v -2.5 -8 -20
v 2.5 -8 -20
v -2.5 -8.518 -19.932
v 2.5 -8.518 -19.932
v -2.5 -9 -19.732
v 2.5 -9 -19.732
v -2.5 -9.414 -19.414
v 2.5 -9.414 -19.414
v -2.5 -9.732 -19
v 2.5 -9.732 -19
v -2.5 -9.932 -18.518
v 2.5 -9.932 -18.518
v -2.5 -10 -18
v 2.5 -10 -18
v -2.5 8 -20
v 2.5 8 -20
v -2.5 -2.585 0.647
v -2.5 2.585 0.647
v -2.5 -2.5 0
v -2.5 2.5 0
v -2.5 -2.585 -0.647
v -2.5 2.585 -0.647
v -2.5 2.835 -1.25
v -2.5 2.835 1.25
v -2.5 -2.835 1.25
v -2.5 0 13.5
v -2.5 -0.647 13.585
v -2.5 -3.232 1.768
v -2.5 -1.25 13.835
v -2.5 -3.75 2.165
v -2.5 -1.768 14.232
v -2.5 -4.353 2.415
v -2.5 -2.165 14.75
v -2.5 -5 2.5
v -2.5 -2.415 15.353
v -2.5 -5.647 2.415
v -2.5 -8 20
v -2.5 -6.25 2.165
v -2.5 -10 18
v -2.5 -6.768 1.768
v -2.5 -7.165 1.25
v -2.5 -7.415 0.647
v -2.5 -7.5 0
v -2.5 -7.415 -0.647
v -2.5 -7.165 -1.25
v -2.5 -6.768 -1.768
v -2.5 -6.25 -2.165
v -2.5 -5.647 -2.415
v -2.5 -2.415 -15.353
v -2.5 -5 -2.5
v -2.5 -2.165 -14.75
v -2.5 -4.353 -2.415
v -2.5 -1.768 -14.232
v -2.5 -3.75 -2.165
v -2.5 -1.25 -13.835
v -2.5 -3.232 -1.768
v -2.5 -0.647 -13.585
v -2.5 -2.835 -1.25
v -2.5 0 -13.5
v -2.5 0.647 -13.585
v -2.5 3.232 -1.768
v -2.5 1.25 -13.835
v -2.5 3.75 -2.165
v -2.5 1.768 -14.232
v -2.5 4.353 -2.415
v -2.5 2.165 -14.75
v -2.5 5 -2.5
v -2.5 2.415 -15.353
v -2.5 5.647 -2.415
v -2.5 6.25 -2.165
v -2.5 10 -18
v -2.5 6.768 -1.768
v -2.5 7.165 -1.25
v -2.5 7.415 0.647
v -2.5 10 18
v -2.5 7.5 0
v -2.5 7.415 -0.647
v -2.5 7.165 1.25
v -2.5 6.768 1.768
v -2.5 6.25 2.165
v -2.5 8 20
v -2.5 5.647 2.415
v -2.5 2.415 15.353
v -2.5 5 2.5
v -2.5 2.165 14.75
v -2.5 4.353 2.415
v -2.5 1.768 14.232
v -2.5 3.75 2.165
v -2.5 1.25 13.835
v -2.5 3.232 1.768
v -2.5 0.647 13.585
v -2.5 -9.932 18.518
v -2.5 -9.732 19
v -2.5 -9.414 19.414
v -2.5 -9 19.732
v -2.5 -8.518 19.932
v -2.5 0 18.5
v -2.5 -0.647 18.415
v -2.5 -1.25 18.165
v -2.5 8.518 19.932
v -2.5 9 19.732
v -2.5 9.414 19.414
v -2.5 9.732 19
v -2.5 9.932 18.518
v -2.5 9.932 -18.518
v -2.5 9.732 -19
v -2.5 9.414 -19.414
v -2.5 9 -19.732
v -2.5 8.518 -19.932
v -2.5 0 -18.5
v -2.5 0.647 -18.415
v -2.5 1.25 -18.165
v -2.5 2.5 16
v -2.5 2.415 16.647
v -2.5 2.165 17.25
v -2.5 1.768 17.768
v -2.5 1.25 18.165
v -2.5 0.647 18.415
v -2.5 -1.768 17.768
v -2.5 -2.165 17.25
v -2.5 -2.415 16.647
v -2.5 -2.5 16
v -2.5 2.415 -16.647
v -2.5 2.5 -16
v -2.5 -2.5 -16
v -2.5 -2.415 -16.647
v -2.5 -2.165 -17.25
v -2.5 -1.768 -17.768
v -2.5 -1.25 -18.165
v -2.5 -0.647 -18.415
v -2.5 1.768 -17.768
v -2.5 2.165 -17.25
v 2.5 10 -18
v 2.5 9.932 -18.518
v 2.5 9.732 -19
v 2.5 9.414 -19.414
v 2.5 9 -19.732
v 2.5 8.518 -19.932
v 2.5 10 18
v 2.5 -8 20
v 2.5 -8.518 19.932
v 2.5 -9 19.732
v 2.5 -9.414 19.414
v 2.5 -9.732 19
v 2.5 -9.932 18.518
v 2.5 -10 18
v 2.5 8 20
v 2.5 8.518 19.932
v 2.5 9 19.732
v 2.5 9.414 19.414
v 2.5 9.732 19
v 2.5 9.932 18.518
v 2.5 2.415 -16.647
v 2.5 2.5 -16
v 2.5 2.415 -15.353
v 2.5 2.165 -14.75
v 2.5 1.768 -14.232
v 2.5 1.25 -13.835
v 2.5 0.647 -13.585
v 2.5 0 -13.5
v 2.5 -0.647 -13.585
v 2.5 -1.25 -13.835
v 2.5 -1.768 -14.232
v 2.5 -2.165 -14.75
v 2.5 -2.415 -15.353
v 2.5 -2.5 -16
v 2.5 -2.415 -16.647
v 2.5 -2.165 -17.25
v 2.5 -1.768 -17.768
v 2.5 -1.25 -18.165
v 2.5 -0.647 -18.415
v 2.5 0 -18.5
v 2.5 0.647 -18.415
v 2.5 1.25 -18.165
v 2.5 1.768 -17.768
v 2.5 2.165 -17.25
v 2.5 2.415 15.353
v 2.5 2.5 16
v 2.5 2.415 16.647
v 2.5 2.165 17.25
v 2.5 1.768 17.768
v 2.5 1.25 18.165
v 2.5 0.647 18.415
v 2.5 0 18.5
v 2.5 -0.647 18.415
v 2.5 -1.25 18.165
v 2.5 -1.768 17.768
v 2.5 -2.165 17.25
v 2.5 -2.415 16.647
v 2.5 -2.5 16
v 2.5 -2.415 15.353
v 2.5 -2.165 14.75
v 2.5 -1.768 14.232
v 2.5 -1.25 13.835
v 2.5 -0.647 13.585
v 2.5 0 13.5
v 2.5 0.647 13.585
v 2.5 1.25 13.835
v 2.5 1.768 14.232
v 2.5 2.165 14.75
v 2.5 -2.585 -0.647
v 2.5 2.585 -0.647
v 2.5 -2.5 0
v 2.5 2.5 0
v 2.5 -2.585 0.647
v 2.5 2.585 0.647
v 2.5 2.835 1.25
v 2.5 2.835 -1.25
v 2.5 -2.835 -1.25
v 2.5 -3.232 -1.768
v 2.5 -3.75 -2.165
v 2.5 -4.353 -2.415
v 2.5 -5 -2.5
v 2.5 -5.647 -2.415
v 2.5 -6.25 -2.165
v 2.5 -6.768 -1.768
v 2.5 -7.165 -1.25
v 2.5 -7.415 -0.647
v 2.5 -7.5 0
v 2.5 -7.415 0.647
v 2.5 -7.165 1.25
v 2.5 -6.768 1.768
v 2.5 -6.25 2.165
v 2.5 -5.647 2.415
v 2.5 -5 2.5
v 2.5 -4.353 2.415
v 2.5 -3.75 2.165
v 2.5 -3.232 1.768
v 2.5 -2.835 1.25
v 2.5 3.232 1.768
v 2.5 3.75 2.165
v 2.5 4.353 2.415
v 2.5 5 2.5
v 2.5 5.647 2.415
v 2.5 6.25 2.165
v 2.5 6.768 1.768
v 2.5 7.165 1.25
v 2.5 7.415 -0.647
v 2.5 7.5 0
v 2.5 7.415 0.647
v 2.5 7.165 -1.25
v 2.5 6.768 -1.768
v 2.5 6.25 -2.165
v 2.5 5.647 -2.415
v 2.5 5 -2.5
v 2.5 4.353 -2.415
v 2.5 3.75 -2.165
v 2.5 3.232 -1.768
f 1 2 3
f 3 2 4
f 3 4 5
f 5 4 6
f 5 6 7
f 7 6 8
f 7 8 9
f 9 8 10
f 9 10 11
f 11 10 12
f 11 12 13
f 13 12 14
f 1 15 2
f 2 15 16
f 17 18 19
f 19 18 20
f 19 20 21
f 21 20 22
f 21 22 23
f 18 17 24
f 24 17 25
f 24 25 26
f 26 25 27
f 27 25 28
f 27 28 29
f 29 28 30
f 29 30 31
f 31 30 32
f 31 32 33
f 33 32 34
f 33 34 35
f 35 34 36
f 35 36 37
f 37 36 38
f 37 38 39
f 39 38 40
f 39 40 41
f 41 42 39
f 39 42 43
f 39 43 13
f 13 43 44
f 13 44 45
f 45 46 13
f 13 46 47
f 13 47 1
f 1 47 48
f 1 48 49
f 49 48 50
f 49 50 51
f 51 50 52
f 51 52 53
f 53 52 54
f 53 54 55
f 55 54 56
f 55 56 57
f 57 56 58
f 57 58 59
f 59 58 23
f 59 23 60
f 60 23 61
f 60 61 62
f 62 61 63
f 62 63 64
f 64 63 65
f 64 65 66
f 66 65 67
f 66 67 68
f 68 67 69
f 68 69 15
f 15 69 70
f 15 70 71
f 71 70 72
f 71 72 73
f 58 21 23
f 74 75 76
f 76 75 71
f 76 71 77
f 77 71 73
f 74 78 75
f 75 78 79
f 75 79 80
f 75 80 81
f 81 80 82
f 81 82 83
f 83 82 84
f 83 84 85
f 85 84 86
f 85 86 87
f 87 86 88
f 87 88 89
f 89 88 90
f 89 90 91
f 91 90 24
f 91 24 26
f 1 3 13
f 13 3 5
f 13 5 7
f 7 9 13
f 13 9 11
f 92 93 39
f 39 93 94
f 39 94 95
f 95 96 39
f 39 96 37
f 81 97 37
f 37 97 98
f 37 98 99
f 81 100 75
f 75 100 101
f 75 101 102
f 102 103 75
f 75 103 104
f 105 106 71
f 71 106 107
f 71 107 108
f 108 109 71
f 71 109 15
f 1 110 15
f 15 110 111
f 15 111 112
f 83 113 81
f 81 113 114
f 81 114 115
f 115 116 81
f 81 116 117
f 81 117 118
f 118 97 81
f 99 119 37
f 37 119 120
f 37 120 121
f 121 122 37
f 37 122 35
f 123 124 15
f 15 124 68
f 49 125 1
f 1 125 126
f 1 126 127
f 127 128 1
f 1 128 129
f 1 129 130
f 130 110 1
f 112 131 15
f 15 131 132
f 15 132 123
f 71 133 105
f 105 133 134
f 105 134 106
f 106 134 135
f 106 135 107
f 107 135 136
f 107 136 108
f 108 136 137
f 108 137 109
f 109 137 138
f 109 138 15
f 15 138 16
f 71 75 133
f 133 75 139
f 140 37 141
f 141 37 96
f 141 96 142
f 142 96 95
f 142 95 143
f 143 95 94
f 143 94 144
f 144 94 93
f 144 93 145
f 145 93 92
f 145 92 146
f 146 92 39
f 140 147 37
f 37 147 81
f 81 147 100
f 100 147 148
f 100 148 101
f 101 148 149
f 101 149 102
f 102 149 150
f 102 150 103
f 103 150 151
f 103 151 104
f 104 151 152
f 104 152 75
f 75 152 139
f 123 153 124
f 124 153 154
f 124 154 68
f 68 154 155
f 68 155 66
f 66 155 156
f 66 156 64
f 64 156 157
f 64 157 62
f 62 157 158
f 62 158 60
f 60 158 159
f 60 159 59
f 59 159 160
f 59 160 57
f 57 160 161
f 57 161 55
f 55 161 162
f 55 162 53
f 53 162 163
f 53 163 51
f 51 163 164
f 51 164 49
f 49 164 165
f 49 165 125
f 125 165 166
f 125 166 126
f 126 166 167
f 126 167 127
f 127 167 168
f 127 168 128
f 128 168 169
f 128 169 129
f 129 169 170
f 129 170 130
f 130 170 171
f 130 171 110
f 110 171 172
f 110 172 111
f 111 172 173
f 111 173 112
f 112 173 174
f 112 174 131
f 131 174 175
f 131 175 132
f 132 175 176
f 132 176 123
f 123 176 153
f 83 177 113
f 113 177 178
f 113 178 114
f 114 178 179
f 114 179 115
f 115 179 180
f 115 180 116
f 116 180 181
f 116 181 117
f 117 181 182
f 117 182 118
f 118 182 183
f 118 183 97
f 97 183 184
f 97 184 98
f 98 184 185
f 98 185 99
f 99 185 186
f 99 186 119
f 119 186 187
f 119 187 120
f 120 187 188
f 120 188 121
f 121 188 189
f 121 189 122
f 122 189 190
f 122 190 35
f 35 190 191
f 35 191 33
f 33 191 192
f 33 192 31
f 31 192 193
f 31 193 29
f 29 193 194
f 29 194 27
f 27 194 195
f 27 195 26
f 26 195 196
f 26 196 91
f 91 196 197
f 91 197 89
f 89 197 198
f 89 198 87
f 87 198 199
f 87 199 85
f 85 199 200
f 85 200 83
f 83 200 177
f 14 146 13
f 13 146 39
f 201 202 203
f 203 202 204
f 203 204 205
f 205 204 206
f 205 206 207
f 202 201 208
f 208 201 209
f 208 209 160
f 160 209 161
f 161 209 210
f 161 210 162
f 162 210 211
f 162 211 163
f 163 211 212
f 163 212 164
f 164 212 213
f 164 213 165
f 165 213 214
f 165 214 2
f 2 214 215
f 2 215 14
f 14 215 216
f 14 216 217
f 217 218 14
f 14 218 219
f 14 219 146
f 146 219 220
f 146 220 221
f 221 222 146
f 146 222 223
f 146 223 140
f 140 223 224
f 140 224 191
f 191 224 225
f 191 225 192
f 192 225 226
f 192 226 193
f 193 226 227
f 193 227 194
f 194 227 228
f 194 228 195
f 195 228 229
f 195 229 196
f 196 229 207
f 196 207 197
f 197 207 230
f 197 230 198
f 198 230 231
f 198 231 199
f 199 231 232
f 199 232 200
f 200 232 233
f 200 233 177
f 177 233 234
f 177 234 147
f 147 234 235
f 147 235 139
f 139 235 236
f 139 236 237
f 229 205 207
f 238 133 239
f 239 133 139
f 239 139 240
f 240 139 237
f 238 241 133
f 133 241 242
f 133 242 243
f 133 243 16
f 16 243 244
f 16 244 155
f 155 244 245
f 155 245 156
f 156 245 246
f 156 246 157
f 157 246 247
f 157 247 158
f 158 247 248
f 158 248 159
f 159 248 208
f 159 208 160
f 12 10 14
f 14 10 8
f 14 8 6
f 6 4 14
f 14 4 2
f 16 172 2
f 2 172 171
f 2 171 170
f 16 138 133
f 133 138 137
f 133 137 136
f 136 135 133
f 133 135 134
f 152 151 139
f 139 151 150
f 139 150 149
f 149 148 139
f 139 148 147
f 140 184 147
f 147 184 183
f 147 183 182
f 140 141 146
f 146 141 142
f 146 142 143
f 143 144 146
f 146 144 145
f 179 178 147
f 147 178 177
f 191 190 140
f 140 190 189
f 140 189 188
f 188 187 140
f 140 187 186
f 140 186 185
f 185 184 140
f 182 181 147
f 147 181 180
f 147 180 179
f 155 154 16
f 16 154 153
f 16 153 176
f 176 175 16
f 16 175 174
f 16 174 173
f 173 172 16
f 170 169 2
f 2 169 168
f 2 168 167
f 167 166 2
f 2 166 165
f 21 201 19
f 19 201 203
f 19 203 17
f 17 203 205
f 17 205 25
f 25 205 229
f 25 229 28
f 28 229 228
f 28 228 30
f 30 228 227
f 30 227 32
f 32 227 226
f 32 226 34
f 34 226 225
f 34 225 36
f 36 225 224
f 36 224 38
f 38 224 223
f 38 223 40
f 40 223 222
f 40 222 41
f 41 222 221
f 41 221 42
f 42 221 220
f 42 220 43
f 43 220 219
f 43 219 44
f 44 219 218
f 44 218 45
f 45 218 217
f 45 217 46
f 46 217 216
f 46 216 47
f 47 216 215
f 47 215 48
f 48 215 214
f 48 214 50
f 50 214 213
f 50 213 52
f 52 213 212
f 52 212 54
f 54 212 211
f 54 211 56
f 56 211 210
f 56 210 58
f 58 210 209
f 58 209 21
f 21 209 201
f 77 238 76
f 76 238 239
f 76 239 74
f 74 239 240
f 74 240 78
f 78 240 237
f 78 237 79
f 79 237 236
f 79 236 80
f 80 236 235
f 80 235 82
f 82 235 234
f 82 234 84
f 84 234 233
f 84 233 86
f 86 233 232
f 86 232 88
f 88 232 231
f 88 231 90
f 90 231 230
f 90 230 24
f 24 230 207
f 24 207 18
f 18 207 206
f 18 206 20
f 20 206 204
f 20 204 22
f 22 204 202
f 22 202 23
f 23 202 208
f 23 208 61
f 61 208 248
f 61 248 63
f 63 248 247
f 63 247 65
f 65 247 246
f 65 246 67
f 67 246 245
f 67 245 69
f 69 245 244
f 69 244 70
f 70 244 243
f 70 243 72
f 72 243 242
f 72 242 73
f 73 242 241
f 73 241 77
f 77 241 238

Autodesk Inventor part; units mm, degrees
ref_plane "YZ Plane" through (0, 0, 0) normal (1, 0, 0) x (0, 1, 0)
ref_plane "XZ Plane" through (0, 0, 0) normal (0, 1, 0) x (-1, 0, 0)
ref_plane "XY Plane" through (0, 0, 0) normal (0, 0, 1) x (1, 0, 0)
sketch "Schizzo1" plane through (0, 0, 0) normal (1, 0, 0) x (0, 1, 0)
  line L0 (10, 20) -> (-10, 20)
  line L1 (-10, 20) -> (-10, -20)
  line L2 (-10, -20) -> (10, -20)
  line L3 (10, -20) -> (10, 20)
  line L4 (0, 0) -> (10, 0) construction
  line L5 (0, 0) -> (0, -19.4896) construction
  circle A0 centre (0, 16) radius 2.5
  circle A1 centre (0, -16) radius 2.5
  circle A2 centre (5, 0) radius 2.5
  circle A3 centre (-5, 0) radius 2.5
  dimension "d0" = 40
  dimension "d1" = 20
  dimension "d2" = 4
  dimension "d3" = 5
  dimension "d8" = 5
  dimension "d9" = 5
  dimension "d10" = 5
  dimension "d11" = 10
extrude "Estrusione1" add sketch "Schizzo1" along normal mid plane 5 contours L3 L2 L1 L0 | A2 | A3
fillet "Raccordo1" radius 2 4 edges at (0, 10, 20) (0, -10, 20) (0, 10, -20) (0, -10, -20)
extrude "Estrusione2" cut sketch "Schizzo1" along normal mid plane 5 contours A2 | A3
properties part number "perno"
